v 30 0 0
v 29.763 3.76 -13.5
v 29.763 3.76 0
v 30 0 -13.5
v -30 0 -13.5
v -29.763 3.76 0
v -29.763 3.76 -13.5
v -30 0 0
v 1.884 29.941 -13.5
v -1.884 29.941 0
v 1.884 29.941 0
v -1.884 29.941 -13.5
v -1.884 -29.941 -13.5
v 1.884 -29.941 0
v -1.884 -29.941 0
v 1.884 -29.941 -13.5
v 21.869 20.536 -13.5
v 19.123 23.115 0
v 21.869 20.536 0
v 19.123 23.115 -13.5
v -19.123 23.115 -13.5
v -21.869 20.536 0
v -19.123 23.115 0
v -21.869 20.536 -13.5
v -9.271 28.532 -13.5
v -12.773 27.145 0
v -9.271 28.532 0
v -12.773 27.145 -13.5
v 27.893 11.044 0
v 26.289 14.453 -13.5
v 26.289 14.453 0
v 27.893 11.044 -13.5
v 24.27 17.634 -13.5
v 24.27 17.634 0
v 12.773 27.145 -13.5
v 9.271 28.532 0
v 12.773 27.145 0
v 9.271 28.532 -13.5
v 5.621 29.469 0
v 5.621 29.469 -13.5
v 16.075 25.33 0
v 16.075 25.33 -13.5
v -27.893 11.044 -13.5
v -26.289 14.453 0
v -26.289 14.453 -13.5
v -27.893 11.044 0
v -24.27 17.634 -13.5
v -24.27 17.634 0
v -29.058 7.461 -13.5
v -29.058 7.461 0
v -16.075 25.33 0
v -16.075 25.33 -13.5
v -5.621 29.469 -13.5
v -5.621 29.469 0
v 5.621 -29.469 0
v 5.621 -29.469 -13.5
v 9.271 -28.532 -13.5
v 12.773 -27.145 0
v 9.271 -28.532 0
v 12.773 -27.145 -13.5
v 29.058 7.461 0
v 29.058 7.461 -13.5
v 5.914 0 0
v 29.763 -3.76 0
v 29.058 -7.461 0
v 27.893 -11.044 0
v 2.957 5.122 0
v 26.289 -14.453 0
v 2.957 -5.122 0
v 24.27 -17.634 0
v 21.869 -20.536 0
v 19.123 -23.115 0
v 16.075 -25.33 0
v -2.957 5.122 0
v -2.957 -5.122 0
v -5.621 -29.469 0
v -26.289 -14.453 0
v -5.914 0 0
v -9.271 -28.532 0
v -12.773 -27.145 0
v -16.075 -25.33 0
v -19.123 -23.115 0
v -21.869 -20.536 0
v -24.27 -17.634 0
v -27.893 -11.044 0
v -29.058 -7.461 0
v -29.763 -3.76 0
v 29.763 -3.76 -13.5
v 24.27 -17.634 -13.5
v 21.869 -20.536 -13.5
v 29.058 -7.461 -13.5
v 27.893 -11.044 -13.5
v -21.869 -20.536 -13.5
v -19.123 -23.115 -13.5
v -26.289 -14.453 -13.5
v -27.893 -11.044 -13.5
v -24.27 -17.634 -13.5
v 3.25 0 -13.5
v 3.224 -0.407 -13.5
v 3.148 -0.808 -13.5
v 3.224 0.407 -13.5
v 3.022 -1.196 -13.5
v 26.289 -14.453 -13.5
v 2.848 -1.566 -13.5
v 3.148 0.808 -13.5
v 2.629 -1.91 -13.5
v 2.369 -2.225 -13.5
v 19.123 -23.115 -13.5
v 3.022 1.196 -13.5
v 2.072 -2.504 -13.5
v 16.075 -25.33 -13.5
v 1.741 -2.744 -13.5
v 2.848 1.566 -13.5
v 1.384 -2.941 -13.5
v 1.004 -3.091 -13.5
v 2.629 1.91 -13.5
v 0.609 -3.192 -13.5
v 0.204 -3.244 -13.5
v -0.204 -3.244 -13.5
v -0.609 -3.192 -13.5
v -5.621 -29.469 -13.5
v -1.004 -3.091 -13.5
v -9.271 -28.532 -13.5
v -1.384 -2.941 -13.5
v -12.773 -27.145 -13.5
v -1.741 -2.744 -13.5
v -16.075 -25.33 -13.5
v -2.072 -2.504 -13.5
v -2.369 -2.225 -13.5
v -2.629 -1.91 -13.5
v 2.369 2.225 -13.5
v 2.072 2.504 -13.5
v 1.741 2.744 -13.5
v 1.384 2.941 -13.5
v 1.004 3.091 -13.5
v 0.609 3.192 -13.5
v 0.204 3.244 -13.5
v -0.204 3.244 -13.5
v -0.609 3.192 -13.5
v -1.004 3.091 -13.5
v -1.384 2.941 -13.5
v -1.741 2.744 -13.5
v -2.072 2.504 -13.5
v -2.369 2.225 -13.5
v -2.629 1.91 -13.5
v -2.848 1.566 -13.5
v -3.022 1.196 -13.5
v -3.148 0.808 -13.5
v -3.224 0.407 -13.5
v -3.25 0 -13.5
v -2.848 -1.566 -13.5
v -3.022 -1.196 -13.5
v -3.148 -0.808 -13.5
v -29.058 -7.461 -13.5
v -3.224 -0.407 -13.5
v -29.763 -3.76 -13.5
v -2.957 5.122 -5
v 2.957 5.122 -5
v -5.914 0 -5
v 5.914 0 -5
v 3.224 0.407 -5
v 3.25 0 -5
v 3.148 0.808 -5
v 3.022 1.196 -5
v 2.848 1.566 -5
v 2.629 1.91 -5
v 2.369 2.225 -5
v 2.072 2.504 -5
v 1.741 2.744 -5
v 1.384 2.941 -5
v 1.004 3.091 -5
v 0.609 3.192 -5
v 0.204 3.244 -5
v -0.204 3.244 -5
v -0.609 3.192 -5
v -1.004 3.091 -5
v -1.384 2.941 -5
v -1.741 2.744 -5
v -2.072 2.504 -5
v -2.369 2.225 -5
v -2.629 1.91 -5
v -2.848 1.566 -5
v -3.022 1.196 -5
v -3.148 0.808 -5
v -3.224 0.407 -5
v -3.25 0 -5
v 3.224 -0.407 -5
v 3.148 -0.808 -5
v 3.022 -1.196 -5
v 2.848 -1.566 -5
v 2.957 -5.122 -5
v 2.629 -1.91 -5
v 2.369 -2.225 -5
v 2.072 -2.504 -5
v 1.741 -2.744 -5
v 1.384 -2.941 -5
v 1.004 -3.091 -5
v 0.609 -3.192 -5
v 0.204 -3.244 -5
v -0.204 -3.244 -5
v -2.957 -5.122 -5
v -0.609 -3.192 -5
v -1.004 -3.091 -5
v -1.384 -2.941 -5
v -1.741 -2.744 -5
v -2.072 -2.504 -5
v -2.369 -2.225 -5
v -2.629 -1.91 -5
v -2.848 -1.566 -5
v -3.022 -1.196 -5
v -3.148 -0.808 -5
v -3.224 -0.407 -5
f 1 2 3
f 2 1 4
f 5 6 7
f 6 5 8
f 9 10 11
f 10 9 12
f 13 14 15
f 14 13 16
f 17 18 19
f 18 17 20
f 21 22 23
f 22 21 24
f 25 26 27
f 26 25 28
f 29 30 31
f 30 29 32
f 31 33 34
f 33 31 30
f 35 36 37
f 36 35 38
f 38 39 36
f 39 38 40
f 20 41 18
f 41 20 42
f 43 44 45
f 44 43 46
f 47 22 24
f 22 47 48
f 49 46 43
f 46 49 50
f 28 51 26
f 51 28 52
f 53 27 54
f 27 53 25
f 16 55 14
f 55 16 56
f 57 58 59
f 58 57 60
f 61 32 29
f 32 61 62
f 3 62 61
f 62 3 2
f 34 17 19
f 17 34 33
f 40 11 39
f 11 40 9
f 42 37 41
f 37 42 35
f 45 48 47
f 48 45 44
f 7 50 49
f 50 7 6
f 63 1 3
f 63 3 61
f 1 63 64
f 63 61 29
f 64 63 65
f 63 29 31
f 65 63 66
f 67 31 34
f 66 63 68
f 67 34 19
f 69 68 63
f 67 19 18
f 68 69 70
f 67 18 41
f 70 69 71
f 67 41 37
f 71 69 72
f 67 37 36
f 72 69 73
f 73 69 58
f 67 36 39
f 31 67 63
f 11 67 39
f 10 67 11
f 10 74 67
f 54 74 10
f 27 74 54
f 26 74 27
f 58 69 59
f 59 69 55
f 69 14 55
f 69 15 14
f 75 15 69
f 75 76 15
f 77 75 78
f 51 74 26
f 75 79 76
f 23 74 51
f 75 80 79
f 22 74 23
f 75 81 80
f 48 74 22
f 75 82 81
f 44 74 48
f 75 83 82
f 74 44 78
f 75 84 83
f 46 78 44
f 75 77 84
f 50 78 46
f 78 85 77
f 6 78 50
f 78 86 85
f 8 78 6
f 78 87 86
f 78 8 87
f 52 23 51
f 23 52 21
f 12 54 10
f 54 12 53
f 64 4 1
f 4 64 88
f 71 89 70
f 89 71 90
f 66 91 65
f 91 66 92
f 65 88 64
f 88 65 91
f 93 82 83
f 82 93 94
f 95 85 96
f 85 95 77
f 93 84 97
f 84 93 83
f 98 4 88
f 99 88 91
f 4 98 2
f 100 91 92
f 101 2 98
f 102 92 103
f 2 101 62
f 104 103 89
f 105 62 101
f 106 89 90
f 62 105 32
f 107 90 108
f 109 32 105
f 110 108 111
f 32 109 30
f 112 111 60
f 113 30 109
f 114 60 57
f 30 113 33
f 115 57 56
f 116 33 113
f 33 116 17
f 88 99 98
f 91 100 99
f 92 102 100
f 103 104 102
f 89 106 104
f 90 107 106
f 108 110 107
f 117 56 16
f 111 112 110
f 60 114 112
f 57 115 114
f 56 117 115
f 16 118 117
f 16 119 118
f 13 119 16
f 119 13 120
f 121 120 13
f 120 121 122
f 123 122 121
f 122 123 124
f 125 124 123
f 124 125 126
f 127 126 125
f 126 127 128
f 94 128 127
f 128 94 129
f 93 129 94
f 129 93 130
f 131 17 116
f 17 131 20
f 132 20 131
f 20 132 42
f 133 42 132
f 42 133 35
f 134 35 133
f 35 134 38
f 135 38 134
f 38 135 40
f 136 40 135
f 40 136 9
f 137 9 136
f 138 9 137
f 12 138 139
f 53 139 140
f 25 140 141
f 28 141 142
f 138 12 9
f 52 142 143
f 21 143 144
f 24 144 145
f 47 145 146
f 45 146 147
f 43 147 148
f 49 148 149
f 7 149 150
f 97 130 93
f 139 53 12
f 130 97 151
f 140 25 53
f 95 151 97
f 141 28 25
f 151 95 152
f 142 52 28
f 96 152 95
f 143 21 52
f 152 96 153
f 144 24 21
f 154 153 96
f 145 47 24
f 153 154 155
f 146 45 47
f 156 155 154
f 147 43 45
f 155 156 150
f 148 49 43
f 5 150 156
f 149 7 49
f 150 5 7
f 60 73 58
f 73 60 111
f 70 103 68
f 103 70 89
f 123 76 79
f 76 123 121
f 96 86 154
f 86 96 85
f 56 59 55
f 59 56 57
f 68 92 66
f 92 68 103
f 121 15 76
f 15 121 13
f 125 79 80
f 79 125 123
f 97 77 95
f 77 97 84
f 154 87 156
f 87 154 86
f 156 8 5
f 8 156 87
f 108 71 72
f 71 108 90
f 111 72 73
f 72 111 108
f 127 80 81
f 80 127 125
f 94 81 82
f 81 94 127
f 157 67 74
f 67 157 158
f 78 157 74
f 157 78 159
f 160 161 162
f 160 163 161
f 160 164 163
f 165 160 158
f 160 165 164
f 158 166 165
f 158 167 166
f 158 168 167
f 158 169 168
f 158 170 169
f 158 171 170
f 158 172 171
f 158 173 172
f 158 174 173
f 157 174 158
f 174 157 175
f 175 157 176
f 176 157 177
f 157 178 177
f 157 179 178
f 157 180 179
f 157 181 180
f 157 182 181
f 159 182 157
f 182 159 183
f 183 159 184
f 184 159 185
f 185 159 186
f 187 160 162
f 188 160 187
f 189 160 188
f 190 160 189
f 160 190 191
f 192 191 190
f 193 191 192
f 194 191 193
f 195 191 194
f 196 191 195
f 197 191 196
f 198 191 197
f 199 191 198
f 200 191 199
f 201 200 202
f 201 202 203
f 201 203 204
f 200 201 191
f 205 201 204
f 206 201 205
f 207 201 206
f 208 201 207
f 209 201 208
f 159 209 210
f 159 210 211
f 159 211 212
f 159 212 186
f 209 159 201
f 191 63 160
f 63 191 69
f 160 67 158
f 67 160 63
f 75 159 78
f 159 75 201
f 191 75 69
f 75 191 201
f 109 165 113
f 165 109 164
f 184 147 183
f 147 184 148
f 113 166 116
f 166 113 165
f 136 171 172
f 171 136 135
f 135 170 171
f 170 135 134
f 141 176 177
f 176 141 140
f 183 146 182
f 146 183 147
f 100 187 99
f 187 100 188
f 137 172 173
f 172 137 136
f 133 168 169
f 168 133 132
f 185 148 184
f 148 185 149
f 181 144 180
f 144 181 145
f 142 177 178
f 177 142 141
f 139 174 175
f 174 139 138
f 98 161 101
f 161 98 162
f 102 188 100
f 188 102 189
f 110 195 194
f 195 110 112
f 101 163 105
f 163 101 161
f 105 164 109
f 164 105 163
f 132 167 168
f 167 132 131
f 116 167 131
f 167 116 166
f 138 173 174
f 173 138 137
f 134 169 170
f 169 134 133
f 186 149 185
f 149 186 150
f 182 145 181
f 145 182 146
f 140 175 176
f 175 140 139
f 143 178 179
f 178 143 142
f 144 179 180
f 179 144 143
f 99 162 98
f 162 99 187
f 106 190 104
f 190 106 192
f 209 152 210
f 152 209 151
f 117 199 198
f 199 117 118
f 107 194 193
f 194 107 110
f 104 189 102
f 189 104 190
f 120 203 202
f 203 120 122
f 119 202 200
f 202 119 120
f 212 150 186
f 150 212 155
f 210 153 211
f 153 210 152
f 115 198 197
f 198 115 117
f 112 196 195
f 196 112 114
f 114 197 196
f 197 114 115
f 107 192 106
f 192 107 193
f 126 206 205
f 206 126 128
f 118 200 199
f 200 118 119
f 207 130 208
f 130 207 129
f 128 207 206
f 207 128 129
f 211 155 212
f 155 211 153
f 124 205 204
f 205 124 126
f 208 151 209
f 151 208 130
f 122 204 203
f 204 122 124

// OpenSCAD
$fn = 50;


difference() {
	union() {
		translate(v = [0, 0, -13.5000000000]) {
			cylinder(h = 13.5000000000, r = 30.0000000000);
		}
		translate(v = [0, 0, -15.0000000000]) {
			cylinder(h = 15, r = 2.8750000000);
		}
	}
	union() {
		translate(v = [0, 0, 0]) {
			rotate(a = [0, 0, 0]) {
				difference() {
					union() {
						translate(v = [0, 0, -5]) {
							linear_extrude(height = 5) {
								polygon(points = [[5.9142500000, 0.0000000000], [2.9571250000, 5.1218907443], [-2.9571250000, 5.1218907443], [-5.9142500000, 0.0000000000], [-2.9571250000, -5.1218907443], [2.9571250000, -5.1218907443]]);
							}
						}
					}
					union();
				}
			}
		}
		#translate(v = [0, 0, -100.0000000000]) {
			cylinder(h = 200, r = 3.2500000000);
		}
	}
}
